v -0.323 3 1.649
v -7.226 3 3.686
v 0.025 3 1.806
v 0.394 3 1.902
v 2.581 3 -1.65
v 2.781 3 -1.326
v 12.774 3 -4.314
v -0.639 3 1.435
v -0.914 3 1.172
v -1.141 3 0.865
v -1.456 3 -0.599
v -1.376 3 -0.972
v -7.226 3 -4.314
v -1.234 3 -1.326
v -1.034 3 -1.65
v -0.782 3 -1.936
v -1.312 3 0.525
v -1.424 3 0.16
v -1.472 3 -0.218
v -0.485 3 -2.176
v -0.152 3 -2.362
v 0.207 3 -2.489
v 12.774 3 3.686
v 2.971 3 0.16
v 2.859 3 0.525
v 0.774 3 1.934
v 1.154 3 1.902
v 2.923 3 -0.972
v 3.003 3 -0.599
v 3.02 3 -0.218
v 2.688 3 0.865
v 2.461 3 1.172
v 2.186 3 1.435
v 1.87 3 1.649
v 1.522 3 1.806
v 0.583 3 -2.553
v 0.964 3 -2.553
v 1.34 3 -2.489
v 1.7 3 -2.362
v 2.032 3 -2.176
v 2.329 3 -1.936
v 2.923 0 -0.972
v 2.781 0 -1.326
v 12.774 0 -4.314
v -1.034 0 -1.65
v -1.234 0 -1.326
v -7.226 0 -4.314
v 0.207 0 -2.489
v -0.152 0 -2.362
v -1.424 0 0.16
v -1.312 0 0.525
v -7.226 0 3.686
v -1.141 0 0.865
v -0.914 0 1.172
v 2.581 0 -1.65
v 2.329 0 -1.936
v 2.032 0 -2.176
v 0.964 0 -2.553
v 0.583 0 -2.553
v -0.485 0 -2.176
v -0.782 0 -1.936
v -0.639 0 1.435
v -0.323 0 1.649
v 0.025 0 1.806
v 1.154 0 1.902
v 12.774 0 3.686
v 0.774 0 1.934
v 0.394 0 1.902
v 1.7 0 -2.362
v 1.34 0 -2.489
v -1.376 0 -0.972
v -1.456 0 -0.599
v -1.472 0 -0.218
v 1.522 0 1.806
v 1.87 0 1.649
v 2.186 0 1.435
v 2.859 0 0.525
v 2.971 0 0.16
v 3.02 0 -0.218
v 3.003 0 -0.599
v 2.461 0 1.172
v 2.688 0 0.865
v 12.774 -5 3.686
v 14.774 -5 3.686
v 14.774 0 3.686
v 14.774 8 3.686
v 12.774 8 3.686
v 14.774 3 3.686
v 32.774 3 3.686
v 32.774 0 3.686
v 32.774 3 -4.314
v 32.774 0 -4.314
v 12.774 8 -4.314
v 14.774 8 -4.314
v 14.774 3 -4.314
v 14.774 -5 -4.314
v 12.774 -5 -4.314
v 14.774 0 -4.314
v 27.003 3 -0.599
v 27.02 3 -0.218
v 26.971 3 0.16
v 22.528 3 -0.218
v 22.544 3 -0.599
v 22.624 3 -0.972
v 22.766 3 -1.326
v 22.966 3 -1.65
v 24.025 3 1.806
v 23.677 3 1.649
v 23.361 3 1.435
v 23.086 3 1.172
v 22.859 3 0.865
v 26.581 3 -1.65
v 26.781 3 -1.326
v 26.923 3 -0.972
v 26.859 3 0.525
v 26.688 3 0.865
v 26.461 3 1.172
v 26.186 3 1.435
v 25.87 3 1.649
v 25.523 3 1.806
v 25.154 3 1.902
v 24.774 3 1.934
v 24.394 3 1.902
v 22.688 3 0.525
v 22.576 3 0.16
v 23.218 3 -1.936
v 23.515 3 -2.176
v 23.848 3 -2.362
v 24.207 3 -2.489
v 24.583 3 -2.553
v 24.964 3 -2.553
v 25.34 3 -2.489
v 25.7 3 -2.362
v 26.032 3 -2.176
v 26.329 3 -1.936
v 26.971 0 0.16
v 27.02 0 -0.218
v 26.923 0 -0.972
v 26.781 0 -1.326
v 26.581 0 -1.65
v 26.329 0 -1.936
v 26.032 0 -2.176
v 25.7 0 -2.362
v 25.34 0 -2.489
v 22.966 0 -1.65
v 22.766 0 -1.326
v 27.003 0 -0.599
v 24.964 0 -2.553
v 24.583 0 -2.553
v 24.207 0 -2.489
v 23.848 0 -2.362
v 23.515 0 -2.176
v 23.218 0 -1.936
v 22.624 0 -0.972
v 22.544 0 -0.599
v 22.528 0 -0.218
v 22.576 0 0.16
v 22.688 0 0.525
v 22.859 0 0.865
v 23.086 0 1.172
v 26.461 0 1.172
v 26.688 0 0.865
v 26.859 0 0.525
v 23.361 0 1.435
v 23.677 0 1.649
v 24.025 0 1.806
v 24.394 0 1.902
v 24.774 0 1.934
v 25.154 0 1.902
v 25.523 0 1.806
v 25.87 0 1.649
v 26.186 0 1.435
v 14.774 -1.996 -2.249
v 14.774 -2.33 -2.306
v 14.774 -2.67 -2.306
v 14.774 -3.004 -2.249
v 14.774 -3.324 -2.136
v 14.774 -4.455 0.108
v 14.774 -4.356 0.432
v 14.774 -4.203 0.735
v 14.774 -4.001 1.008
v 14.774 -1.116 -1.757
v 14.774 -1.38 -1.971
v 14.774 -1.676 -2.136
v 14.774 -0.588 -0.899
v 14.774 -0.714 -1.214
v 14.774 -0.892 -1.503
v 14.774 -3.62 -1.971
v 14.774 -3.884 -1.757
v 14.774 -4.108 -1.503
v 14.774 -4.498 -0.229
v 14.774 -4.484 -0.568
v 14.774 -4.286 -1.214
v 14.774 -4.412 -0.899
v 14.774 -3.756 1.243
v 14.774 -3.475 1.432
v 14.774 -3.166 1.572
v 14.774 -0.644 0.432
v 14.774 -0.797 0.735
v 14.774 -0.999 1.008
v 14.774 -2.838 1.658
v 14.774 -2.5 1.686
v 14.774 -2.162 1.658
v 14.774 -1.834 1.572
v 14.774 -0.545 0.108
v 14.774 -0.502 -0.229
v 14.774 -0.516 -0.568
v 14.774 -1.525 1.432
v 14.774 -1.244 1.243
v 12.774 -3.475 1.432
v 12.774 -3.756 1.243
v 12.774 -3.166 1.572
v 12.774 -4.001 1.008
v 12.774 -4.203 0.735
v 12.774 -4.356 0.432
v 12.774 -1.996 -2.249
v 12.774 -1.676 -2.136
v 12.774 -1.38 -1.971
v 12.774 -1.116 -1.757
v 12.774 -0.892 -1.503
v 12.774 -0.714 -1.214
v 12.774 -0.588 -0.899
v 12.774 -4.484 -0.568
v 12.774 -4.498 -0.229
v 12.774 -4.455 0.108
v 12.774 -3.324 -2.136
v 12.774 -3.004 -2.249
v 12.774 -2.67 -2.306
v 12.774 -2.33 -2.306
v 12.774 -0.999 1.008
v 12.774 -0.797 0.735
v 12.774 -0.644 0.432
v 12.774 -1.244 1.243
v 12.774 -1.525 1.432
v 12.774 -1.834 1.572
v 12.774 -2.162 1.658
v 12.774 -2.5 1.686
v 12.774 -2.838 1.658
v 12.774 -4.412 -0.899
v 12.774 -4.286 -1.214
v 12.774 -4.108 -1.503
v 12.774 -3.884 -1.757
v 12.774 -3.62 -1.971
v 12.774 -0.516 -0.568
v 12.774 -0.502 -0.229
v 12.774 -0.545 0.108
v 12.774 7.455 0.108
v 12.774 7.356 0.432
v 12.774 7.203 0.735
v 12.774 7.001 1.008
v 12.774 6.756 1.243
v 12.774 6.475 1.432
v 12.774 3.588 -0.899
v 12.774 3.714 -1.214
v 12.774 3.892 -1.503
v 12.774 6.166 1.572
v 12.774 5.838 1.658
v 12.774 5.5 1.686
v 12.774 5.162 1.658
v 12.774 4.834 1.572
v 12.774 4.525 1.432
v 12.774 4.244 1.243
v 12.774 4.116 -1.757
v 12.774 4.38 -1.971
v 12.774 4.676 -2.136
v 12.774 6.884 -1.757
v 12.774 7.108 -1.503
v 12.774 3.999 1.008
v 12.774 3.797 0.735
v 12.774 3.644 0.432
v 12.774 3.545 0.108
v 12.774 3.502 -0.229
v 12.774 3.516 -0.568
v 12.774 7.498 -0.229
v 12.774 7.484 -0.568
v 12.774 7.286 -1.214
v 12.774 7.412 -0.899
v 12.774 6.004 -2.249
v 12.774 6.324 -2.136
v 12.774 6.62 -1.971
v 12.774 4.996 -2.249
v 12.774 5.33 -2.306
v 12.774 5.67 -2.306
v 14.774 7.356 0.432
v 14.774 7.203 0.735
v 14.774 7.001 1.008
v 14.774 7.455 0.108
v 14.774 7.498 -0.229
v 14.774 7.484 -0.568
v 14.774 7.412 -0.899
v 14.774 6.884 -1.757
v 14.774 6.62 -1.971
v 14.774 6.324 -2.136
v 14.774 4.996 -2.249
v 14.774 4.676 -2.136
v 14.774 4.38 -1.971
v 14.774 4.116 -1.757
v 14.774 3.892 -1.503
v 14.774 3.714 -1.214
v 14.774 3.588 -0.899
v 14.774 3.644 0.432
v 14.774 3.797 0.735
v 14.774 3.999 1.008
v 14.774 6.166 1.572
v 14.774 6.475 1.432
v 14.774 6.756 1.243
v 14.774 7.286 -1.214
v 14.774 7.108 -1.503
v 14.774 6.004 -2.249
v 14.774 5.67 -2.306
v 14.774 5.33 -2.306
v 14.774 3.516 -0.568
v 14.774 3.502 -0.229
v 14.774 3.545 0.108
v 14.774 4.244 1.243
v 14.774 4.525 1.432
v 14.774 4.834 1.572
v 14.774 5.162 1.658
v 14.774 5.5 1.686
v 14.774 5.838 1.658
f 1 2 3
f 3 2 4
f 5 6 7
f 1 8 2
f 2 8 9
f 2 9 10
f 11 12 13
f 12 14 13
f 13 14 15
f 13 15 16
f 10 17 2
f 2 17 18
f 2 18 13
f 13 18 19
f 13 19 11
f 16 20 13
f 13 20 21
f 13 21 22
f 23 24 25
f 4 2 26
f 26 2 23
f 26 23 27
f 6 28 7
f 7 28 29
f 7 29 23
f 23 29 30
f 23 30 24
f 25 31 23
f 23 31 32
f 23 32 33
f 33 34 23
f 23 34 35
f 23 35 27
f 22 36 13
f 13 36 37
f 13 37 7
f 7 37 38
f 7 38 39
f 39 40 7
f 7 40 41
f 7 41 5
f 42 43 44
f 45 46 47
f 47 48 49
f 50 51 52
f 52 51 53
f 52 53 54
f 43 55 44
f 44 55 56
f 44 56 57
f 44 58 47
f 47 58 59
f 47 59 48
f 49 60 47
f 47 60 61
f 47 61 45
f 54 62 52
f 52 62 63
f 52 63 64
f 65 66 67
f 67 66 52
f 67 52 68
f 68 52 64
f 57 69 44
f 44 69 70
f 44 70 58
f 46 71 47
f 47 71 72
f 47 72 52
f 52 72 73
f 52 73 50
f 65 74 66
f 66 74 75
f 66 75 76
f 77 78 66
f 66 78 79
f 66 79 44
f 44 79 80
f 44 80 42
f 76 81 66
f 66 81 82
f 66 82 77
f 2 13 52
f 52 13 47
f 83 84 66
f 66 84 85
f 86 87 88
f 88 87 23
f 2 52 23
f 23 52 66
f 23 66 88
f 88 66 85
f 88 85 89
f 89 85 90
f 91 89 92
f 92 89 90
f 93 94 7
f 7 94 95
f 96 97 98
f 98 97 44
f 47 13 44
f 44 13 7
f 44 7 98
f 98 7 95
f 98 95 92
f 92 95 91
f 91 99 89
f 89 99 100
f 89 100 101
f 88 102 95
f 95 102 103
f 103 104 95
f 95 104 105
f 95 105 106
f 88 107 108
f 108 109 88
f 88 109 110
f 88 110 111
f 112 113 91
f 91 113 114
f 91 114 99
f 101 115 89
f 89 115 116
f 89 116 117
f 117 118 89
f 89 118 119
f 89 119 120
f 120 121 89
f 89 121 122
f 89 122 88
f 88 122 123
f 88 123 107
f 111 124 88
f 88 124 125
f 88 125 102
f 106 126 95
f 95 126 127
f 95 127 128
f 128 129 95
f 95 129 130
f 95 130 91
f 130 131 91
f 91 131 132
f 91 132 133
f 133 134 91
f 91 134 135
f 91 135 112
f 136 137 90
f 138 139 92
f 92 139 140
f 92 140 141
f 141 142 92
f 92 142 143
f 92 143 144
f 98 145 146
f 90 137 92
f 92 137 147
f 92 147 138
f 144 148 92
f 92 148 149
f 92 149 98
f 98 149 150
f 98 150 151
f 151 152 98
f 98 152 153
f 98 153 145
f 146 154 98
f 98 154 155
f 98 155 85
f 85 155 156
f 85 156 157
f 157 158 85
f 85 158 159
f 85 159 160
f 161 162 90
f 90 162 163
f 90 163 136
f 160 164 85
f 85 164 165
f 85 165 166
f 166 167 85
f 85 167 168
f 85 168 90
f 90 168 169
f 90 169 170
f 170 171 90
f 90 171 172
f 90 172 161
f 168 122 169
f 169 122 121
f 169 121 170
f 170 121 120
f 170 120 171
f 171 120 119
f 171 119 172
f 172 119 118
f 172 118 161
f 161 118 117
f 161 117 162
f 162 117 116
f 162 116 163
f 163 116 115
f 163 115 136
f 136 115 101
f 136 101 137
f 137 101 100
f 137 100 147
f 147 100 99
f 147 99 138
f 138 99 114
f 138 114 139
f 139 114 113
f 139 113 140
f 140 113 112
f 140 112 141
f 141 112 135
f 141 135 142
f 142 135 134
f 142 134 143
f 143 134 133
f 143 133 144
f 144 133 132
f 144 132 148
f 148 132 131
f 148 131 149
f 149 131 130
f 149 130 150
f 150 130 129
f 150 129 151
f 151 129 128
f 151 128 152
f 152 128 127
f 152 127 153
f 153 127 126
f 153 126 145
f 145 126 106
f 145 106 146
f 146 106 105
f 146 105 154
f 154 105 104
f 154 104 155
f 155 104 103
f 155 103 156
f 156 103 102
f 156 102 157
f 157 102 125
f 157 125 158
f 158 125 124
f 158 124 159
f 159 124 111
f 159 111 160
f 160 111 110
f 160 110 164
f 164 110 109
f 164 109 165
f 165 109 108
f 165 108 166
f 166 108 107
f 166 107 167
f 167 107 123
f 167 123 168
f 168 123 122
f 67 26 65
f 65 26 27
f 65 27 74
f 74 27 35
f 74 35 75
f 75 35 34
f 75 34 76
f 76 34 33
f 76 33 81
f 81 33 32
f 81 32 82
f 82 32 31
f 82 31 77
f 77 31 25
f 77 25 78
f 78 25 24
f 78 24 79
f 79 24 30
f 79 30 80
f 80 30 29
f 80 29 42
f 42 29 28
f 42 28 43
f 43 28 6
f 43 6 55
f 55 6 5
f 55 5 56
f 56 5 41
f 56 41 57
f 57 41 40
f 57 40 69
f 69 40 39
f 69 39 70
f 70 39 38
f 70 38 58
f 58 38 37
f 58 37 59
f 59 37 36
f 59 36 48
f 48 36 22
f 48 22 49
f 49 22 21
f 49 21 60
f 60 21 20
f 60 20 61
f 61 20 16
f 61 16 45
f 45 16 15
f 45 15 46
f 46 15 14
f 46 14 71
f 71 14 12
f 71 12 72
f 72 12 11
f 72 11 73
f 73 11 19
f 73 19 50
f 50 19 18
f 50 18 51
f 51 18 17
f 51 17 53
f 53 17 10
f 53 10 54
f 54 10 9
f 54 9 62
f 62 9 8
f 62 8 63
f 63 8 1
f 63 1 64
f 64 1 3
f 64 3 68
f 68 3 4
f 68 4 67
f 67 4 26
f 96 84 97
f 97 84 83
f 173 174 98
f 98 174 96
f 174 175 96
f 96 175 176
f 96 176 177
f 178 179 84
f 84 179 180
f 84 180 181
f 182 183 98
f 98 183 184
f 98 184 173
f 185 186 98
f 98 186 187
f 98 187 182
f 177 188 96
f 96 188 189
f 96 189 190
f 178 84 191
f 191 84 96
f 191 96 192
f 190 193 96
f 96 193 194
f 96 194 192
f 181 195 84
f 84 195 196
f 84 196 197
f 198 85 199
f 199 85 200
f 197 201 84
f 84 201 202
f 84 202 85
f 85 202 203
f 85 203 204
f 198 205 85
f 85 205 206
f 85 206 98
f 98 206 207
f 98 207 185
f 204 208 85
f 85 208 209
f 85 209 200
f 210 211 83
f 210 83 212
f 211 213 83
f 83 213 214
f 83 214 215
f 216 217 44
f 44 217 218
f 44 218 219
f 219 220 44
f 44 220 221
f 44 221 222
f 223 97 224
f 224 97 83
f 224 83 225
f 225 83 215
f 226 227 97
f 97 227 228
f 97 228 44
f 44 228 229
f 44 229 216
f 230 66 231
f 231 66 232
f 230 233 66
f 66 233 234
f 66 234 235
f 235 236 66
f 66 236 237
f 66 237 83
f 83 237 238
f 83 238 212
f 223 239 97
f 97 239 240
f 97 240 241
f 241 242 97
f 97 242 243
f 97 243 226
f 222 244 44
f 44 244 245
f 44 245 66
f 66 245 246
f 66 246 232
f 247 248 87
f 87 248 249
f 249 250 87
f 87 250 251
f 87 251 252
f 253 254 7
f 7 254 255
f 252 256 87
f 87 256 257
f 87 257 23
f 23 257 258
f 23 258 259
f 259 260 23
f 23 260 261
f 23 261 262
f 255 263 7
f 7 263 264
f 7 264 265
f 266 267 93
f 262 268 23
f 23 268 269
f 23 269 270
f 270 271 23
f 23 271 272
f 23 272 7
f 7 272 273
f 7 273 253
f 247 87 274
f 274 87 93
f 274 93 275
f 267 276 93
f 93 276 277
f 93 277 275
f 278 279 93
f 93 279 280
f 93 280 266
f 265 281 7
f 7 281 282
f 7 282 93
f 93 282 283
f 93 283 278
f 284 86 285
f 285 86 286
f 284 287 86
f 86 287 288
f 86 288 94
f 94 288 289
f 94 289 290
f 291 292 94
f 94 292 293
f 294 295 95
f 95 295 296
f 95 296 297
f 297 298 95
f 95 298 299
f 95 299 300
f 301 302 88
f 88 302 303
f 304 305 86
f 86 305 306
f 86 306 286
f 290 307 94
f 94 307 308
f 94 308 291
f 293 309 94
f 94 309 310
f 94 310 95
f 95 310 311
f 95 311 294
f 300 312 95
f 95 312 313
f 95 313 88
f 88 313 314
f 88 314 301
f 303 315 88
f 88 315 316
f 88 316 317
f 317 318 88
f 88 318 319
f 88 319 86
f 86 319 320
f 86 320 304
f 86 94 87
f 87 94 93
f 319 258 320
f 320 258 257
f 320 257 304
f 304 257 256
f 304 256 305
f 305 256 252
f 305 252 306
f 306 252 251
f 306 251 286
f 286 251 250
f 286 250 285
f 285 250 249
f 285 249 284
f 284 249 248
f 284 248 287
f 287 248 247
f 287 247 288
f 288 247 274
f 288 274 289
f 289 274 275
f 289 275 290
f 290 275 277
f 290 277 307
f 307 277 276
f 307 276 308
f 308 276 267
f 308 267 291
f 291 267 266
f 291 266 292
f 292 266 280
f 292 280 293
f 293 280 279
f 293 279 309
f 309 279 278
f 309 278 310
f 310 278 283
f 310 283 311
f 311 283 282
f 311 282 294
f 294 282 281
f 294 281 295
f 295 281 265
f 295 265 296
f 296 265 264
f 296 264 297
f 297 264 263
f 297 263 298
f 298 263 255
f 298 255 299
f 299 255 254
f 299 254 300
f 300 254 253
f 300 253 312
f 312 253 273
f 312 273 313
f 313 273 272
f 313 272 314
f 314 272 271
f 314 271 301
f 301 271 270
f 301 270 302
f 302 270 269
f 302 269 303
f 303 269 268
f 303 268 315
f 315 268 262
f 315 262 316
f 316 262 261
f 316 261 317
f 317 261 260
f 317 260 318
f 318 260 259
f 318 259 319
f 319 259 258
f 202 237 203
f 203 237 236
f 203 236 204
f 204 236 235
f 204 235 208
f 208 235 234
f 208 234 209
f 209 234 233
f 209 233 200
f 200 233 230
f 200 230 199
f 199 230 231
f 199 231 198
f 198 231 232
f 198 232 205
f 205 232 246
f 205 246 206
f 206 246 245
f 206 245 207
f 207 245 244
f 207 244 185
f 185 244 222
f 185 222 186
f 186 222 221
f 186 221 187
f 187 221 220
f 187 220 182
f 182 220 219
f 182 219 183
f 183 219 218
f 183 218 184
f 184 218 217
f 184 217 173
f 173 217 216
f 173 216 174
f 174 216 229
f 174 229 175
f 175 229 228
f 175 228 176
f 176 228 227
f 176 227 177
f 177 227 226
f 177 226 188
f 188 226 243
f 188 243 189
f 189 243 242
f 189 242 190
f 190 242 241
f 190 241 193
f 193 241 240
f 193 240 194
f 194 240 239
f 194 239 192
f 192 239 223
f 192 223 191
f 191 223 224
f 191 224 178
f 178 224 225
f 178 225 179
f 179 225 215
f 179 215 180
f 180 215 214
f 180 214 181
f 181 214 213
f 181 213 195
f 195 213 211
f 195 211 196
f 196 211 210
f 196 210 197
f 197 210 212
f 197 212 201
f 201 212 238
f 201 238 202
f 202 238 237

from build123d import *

# Parameters (mm, degrees)
SKETCH1_W                 = 40
SKETCH1_H                 = 8
BOSS_EXTRUDE1_DEPTH       = 3
F_8_CLEARANCE_HOLE1_D     = 4.4958
F_8_CLEARANCE_HOLE1_DEPTH = 17
F_8_CLEARANCE_HOLE1_TIP   = 1.350674586
SKETCH5_W                 = 2
SKETCH5_H                 = 8
BOSS_EXTRUDE2_DEPTH       = 5
BOSS_EXTRUDE2_DEPTH_BACK  = 8
SKETCH6_R                 = 2
CUT_EXTRUDE1_DEPTH        = 2


with BuildPart() as part:
    # Sketch1 → Boss-Extrude1 (new body)
    with BuildSketch(Plane(origin=(0, 0, 0), x_dir=(1, 0, 0), z_dir=(0, 1, 0))):
        with Locations((12.773632998, 0.313559322)):
            Rectangle(SKETCH1_W, SKETCH1_H)
    extrude(amount=BOSS_EXTRUDE1_DEPTH)

    # #8 Clearance Hole1
    with Locations(Plane(origin=(0.773632998, 3, -0.313559322), x_dir=(0, 0, 1), z_dir=(0, 1, 0))):
        with Locations((0, 0), (0, 24)):
            Hole(F_8_CLEARANCE_HOLE1_D / 2, depth=F_8_CLEARANCE_HOLE1_DEPTH)
            with Locations((0, 0, -(F_8_CLEARANCE_HOLE1_DEPTH + F_8_CLEARANCE_HOLE1_TIP / 2))):  # 118° drill point
                Cone(0, F_8_CLEARANCE_HOLE1_D / 2, F_8_CLEARANCE_HOLE1_TIP, mode=Mode.SUBTRACT)

    # Sketch5 → Boss-Extrude2 (add, two sides)
    with BuildSketch(Plane(origin=(0, 3, 0), x_dir=(1, 0, 0), z_dir=(0, 1, 0))) as boss_extrude2_sk:
        with Locations((13.773632998, 0.313559322)):
            Rectangle(SKETCH5_W, SKETCH5_H)
    extrude(amount=BOSS_EXTRUDE2_DEPTH)
    extrude(boss_extrude2_sk.sketch, amount=-BOSS_EXTRUDE2_DEPTH_BACK)

    # Sketch6 → Cut-Extrude1 (cut)
    with BuildSketch(Plane.ZY.offset(-12.773632998)):
        with Locations((-0.313559322, 5.5)):
            Circle(SKETCH6_R)
        with Locations((-0.313559322, -2.5)):
            Circle(SKETCH6_R)
    extrude(amount=-CUT_EXTRUDE1_DEPTH, mode=Mode.SUBTRACT)


solid = part.part
